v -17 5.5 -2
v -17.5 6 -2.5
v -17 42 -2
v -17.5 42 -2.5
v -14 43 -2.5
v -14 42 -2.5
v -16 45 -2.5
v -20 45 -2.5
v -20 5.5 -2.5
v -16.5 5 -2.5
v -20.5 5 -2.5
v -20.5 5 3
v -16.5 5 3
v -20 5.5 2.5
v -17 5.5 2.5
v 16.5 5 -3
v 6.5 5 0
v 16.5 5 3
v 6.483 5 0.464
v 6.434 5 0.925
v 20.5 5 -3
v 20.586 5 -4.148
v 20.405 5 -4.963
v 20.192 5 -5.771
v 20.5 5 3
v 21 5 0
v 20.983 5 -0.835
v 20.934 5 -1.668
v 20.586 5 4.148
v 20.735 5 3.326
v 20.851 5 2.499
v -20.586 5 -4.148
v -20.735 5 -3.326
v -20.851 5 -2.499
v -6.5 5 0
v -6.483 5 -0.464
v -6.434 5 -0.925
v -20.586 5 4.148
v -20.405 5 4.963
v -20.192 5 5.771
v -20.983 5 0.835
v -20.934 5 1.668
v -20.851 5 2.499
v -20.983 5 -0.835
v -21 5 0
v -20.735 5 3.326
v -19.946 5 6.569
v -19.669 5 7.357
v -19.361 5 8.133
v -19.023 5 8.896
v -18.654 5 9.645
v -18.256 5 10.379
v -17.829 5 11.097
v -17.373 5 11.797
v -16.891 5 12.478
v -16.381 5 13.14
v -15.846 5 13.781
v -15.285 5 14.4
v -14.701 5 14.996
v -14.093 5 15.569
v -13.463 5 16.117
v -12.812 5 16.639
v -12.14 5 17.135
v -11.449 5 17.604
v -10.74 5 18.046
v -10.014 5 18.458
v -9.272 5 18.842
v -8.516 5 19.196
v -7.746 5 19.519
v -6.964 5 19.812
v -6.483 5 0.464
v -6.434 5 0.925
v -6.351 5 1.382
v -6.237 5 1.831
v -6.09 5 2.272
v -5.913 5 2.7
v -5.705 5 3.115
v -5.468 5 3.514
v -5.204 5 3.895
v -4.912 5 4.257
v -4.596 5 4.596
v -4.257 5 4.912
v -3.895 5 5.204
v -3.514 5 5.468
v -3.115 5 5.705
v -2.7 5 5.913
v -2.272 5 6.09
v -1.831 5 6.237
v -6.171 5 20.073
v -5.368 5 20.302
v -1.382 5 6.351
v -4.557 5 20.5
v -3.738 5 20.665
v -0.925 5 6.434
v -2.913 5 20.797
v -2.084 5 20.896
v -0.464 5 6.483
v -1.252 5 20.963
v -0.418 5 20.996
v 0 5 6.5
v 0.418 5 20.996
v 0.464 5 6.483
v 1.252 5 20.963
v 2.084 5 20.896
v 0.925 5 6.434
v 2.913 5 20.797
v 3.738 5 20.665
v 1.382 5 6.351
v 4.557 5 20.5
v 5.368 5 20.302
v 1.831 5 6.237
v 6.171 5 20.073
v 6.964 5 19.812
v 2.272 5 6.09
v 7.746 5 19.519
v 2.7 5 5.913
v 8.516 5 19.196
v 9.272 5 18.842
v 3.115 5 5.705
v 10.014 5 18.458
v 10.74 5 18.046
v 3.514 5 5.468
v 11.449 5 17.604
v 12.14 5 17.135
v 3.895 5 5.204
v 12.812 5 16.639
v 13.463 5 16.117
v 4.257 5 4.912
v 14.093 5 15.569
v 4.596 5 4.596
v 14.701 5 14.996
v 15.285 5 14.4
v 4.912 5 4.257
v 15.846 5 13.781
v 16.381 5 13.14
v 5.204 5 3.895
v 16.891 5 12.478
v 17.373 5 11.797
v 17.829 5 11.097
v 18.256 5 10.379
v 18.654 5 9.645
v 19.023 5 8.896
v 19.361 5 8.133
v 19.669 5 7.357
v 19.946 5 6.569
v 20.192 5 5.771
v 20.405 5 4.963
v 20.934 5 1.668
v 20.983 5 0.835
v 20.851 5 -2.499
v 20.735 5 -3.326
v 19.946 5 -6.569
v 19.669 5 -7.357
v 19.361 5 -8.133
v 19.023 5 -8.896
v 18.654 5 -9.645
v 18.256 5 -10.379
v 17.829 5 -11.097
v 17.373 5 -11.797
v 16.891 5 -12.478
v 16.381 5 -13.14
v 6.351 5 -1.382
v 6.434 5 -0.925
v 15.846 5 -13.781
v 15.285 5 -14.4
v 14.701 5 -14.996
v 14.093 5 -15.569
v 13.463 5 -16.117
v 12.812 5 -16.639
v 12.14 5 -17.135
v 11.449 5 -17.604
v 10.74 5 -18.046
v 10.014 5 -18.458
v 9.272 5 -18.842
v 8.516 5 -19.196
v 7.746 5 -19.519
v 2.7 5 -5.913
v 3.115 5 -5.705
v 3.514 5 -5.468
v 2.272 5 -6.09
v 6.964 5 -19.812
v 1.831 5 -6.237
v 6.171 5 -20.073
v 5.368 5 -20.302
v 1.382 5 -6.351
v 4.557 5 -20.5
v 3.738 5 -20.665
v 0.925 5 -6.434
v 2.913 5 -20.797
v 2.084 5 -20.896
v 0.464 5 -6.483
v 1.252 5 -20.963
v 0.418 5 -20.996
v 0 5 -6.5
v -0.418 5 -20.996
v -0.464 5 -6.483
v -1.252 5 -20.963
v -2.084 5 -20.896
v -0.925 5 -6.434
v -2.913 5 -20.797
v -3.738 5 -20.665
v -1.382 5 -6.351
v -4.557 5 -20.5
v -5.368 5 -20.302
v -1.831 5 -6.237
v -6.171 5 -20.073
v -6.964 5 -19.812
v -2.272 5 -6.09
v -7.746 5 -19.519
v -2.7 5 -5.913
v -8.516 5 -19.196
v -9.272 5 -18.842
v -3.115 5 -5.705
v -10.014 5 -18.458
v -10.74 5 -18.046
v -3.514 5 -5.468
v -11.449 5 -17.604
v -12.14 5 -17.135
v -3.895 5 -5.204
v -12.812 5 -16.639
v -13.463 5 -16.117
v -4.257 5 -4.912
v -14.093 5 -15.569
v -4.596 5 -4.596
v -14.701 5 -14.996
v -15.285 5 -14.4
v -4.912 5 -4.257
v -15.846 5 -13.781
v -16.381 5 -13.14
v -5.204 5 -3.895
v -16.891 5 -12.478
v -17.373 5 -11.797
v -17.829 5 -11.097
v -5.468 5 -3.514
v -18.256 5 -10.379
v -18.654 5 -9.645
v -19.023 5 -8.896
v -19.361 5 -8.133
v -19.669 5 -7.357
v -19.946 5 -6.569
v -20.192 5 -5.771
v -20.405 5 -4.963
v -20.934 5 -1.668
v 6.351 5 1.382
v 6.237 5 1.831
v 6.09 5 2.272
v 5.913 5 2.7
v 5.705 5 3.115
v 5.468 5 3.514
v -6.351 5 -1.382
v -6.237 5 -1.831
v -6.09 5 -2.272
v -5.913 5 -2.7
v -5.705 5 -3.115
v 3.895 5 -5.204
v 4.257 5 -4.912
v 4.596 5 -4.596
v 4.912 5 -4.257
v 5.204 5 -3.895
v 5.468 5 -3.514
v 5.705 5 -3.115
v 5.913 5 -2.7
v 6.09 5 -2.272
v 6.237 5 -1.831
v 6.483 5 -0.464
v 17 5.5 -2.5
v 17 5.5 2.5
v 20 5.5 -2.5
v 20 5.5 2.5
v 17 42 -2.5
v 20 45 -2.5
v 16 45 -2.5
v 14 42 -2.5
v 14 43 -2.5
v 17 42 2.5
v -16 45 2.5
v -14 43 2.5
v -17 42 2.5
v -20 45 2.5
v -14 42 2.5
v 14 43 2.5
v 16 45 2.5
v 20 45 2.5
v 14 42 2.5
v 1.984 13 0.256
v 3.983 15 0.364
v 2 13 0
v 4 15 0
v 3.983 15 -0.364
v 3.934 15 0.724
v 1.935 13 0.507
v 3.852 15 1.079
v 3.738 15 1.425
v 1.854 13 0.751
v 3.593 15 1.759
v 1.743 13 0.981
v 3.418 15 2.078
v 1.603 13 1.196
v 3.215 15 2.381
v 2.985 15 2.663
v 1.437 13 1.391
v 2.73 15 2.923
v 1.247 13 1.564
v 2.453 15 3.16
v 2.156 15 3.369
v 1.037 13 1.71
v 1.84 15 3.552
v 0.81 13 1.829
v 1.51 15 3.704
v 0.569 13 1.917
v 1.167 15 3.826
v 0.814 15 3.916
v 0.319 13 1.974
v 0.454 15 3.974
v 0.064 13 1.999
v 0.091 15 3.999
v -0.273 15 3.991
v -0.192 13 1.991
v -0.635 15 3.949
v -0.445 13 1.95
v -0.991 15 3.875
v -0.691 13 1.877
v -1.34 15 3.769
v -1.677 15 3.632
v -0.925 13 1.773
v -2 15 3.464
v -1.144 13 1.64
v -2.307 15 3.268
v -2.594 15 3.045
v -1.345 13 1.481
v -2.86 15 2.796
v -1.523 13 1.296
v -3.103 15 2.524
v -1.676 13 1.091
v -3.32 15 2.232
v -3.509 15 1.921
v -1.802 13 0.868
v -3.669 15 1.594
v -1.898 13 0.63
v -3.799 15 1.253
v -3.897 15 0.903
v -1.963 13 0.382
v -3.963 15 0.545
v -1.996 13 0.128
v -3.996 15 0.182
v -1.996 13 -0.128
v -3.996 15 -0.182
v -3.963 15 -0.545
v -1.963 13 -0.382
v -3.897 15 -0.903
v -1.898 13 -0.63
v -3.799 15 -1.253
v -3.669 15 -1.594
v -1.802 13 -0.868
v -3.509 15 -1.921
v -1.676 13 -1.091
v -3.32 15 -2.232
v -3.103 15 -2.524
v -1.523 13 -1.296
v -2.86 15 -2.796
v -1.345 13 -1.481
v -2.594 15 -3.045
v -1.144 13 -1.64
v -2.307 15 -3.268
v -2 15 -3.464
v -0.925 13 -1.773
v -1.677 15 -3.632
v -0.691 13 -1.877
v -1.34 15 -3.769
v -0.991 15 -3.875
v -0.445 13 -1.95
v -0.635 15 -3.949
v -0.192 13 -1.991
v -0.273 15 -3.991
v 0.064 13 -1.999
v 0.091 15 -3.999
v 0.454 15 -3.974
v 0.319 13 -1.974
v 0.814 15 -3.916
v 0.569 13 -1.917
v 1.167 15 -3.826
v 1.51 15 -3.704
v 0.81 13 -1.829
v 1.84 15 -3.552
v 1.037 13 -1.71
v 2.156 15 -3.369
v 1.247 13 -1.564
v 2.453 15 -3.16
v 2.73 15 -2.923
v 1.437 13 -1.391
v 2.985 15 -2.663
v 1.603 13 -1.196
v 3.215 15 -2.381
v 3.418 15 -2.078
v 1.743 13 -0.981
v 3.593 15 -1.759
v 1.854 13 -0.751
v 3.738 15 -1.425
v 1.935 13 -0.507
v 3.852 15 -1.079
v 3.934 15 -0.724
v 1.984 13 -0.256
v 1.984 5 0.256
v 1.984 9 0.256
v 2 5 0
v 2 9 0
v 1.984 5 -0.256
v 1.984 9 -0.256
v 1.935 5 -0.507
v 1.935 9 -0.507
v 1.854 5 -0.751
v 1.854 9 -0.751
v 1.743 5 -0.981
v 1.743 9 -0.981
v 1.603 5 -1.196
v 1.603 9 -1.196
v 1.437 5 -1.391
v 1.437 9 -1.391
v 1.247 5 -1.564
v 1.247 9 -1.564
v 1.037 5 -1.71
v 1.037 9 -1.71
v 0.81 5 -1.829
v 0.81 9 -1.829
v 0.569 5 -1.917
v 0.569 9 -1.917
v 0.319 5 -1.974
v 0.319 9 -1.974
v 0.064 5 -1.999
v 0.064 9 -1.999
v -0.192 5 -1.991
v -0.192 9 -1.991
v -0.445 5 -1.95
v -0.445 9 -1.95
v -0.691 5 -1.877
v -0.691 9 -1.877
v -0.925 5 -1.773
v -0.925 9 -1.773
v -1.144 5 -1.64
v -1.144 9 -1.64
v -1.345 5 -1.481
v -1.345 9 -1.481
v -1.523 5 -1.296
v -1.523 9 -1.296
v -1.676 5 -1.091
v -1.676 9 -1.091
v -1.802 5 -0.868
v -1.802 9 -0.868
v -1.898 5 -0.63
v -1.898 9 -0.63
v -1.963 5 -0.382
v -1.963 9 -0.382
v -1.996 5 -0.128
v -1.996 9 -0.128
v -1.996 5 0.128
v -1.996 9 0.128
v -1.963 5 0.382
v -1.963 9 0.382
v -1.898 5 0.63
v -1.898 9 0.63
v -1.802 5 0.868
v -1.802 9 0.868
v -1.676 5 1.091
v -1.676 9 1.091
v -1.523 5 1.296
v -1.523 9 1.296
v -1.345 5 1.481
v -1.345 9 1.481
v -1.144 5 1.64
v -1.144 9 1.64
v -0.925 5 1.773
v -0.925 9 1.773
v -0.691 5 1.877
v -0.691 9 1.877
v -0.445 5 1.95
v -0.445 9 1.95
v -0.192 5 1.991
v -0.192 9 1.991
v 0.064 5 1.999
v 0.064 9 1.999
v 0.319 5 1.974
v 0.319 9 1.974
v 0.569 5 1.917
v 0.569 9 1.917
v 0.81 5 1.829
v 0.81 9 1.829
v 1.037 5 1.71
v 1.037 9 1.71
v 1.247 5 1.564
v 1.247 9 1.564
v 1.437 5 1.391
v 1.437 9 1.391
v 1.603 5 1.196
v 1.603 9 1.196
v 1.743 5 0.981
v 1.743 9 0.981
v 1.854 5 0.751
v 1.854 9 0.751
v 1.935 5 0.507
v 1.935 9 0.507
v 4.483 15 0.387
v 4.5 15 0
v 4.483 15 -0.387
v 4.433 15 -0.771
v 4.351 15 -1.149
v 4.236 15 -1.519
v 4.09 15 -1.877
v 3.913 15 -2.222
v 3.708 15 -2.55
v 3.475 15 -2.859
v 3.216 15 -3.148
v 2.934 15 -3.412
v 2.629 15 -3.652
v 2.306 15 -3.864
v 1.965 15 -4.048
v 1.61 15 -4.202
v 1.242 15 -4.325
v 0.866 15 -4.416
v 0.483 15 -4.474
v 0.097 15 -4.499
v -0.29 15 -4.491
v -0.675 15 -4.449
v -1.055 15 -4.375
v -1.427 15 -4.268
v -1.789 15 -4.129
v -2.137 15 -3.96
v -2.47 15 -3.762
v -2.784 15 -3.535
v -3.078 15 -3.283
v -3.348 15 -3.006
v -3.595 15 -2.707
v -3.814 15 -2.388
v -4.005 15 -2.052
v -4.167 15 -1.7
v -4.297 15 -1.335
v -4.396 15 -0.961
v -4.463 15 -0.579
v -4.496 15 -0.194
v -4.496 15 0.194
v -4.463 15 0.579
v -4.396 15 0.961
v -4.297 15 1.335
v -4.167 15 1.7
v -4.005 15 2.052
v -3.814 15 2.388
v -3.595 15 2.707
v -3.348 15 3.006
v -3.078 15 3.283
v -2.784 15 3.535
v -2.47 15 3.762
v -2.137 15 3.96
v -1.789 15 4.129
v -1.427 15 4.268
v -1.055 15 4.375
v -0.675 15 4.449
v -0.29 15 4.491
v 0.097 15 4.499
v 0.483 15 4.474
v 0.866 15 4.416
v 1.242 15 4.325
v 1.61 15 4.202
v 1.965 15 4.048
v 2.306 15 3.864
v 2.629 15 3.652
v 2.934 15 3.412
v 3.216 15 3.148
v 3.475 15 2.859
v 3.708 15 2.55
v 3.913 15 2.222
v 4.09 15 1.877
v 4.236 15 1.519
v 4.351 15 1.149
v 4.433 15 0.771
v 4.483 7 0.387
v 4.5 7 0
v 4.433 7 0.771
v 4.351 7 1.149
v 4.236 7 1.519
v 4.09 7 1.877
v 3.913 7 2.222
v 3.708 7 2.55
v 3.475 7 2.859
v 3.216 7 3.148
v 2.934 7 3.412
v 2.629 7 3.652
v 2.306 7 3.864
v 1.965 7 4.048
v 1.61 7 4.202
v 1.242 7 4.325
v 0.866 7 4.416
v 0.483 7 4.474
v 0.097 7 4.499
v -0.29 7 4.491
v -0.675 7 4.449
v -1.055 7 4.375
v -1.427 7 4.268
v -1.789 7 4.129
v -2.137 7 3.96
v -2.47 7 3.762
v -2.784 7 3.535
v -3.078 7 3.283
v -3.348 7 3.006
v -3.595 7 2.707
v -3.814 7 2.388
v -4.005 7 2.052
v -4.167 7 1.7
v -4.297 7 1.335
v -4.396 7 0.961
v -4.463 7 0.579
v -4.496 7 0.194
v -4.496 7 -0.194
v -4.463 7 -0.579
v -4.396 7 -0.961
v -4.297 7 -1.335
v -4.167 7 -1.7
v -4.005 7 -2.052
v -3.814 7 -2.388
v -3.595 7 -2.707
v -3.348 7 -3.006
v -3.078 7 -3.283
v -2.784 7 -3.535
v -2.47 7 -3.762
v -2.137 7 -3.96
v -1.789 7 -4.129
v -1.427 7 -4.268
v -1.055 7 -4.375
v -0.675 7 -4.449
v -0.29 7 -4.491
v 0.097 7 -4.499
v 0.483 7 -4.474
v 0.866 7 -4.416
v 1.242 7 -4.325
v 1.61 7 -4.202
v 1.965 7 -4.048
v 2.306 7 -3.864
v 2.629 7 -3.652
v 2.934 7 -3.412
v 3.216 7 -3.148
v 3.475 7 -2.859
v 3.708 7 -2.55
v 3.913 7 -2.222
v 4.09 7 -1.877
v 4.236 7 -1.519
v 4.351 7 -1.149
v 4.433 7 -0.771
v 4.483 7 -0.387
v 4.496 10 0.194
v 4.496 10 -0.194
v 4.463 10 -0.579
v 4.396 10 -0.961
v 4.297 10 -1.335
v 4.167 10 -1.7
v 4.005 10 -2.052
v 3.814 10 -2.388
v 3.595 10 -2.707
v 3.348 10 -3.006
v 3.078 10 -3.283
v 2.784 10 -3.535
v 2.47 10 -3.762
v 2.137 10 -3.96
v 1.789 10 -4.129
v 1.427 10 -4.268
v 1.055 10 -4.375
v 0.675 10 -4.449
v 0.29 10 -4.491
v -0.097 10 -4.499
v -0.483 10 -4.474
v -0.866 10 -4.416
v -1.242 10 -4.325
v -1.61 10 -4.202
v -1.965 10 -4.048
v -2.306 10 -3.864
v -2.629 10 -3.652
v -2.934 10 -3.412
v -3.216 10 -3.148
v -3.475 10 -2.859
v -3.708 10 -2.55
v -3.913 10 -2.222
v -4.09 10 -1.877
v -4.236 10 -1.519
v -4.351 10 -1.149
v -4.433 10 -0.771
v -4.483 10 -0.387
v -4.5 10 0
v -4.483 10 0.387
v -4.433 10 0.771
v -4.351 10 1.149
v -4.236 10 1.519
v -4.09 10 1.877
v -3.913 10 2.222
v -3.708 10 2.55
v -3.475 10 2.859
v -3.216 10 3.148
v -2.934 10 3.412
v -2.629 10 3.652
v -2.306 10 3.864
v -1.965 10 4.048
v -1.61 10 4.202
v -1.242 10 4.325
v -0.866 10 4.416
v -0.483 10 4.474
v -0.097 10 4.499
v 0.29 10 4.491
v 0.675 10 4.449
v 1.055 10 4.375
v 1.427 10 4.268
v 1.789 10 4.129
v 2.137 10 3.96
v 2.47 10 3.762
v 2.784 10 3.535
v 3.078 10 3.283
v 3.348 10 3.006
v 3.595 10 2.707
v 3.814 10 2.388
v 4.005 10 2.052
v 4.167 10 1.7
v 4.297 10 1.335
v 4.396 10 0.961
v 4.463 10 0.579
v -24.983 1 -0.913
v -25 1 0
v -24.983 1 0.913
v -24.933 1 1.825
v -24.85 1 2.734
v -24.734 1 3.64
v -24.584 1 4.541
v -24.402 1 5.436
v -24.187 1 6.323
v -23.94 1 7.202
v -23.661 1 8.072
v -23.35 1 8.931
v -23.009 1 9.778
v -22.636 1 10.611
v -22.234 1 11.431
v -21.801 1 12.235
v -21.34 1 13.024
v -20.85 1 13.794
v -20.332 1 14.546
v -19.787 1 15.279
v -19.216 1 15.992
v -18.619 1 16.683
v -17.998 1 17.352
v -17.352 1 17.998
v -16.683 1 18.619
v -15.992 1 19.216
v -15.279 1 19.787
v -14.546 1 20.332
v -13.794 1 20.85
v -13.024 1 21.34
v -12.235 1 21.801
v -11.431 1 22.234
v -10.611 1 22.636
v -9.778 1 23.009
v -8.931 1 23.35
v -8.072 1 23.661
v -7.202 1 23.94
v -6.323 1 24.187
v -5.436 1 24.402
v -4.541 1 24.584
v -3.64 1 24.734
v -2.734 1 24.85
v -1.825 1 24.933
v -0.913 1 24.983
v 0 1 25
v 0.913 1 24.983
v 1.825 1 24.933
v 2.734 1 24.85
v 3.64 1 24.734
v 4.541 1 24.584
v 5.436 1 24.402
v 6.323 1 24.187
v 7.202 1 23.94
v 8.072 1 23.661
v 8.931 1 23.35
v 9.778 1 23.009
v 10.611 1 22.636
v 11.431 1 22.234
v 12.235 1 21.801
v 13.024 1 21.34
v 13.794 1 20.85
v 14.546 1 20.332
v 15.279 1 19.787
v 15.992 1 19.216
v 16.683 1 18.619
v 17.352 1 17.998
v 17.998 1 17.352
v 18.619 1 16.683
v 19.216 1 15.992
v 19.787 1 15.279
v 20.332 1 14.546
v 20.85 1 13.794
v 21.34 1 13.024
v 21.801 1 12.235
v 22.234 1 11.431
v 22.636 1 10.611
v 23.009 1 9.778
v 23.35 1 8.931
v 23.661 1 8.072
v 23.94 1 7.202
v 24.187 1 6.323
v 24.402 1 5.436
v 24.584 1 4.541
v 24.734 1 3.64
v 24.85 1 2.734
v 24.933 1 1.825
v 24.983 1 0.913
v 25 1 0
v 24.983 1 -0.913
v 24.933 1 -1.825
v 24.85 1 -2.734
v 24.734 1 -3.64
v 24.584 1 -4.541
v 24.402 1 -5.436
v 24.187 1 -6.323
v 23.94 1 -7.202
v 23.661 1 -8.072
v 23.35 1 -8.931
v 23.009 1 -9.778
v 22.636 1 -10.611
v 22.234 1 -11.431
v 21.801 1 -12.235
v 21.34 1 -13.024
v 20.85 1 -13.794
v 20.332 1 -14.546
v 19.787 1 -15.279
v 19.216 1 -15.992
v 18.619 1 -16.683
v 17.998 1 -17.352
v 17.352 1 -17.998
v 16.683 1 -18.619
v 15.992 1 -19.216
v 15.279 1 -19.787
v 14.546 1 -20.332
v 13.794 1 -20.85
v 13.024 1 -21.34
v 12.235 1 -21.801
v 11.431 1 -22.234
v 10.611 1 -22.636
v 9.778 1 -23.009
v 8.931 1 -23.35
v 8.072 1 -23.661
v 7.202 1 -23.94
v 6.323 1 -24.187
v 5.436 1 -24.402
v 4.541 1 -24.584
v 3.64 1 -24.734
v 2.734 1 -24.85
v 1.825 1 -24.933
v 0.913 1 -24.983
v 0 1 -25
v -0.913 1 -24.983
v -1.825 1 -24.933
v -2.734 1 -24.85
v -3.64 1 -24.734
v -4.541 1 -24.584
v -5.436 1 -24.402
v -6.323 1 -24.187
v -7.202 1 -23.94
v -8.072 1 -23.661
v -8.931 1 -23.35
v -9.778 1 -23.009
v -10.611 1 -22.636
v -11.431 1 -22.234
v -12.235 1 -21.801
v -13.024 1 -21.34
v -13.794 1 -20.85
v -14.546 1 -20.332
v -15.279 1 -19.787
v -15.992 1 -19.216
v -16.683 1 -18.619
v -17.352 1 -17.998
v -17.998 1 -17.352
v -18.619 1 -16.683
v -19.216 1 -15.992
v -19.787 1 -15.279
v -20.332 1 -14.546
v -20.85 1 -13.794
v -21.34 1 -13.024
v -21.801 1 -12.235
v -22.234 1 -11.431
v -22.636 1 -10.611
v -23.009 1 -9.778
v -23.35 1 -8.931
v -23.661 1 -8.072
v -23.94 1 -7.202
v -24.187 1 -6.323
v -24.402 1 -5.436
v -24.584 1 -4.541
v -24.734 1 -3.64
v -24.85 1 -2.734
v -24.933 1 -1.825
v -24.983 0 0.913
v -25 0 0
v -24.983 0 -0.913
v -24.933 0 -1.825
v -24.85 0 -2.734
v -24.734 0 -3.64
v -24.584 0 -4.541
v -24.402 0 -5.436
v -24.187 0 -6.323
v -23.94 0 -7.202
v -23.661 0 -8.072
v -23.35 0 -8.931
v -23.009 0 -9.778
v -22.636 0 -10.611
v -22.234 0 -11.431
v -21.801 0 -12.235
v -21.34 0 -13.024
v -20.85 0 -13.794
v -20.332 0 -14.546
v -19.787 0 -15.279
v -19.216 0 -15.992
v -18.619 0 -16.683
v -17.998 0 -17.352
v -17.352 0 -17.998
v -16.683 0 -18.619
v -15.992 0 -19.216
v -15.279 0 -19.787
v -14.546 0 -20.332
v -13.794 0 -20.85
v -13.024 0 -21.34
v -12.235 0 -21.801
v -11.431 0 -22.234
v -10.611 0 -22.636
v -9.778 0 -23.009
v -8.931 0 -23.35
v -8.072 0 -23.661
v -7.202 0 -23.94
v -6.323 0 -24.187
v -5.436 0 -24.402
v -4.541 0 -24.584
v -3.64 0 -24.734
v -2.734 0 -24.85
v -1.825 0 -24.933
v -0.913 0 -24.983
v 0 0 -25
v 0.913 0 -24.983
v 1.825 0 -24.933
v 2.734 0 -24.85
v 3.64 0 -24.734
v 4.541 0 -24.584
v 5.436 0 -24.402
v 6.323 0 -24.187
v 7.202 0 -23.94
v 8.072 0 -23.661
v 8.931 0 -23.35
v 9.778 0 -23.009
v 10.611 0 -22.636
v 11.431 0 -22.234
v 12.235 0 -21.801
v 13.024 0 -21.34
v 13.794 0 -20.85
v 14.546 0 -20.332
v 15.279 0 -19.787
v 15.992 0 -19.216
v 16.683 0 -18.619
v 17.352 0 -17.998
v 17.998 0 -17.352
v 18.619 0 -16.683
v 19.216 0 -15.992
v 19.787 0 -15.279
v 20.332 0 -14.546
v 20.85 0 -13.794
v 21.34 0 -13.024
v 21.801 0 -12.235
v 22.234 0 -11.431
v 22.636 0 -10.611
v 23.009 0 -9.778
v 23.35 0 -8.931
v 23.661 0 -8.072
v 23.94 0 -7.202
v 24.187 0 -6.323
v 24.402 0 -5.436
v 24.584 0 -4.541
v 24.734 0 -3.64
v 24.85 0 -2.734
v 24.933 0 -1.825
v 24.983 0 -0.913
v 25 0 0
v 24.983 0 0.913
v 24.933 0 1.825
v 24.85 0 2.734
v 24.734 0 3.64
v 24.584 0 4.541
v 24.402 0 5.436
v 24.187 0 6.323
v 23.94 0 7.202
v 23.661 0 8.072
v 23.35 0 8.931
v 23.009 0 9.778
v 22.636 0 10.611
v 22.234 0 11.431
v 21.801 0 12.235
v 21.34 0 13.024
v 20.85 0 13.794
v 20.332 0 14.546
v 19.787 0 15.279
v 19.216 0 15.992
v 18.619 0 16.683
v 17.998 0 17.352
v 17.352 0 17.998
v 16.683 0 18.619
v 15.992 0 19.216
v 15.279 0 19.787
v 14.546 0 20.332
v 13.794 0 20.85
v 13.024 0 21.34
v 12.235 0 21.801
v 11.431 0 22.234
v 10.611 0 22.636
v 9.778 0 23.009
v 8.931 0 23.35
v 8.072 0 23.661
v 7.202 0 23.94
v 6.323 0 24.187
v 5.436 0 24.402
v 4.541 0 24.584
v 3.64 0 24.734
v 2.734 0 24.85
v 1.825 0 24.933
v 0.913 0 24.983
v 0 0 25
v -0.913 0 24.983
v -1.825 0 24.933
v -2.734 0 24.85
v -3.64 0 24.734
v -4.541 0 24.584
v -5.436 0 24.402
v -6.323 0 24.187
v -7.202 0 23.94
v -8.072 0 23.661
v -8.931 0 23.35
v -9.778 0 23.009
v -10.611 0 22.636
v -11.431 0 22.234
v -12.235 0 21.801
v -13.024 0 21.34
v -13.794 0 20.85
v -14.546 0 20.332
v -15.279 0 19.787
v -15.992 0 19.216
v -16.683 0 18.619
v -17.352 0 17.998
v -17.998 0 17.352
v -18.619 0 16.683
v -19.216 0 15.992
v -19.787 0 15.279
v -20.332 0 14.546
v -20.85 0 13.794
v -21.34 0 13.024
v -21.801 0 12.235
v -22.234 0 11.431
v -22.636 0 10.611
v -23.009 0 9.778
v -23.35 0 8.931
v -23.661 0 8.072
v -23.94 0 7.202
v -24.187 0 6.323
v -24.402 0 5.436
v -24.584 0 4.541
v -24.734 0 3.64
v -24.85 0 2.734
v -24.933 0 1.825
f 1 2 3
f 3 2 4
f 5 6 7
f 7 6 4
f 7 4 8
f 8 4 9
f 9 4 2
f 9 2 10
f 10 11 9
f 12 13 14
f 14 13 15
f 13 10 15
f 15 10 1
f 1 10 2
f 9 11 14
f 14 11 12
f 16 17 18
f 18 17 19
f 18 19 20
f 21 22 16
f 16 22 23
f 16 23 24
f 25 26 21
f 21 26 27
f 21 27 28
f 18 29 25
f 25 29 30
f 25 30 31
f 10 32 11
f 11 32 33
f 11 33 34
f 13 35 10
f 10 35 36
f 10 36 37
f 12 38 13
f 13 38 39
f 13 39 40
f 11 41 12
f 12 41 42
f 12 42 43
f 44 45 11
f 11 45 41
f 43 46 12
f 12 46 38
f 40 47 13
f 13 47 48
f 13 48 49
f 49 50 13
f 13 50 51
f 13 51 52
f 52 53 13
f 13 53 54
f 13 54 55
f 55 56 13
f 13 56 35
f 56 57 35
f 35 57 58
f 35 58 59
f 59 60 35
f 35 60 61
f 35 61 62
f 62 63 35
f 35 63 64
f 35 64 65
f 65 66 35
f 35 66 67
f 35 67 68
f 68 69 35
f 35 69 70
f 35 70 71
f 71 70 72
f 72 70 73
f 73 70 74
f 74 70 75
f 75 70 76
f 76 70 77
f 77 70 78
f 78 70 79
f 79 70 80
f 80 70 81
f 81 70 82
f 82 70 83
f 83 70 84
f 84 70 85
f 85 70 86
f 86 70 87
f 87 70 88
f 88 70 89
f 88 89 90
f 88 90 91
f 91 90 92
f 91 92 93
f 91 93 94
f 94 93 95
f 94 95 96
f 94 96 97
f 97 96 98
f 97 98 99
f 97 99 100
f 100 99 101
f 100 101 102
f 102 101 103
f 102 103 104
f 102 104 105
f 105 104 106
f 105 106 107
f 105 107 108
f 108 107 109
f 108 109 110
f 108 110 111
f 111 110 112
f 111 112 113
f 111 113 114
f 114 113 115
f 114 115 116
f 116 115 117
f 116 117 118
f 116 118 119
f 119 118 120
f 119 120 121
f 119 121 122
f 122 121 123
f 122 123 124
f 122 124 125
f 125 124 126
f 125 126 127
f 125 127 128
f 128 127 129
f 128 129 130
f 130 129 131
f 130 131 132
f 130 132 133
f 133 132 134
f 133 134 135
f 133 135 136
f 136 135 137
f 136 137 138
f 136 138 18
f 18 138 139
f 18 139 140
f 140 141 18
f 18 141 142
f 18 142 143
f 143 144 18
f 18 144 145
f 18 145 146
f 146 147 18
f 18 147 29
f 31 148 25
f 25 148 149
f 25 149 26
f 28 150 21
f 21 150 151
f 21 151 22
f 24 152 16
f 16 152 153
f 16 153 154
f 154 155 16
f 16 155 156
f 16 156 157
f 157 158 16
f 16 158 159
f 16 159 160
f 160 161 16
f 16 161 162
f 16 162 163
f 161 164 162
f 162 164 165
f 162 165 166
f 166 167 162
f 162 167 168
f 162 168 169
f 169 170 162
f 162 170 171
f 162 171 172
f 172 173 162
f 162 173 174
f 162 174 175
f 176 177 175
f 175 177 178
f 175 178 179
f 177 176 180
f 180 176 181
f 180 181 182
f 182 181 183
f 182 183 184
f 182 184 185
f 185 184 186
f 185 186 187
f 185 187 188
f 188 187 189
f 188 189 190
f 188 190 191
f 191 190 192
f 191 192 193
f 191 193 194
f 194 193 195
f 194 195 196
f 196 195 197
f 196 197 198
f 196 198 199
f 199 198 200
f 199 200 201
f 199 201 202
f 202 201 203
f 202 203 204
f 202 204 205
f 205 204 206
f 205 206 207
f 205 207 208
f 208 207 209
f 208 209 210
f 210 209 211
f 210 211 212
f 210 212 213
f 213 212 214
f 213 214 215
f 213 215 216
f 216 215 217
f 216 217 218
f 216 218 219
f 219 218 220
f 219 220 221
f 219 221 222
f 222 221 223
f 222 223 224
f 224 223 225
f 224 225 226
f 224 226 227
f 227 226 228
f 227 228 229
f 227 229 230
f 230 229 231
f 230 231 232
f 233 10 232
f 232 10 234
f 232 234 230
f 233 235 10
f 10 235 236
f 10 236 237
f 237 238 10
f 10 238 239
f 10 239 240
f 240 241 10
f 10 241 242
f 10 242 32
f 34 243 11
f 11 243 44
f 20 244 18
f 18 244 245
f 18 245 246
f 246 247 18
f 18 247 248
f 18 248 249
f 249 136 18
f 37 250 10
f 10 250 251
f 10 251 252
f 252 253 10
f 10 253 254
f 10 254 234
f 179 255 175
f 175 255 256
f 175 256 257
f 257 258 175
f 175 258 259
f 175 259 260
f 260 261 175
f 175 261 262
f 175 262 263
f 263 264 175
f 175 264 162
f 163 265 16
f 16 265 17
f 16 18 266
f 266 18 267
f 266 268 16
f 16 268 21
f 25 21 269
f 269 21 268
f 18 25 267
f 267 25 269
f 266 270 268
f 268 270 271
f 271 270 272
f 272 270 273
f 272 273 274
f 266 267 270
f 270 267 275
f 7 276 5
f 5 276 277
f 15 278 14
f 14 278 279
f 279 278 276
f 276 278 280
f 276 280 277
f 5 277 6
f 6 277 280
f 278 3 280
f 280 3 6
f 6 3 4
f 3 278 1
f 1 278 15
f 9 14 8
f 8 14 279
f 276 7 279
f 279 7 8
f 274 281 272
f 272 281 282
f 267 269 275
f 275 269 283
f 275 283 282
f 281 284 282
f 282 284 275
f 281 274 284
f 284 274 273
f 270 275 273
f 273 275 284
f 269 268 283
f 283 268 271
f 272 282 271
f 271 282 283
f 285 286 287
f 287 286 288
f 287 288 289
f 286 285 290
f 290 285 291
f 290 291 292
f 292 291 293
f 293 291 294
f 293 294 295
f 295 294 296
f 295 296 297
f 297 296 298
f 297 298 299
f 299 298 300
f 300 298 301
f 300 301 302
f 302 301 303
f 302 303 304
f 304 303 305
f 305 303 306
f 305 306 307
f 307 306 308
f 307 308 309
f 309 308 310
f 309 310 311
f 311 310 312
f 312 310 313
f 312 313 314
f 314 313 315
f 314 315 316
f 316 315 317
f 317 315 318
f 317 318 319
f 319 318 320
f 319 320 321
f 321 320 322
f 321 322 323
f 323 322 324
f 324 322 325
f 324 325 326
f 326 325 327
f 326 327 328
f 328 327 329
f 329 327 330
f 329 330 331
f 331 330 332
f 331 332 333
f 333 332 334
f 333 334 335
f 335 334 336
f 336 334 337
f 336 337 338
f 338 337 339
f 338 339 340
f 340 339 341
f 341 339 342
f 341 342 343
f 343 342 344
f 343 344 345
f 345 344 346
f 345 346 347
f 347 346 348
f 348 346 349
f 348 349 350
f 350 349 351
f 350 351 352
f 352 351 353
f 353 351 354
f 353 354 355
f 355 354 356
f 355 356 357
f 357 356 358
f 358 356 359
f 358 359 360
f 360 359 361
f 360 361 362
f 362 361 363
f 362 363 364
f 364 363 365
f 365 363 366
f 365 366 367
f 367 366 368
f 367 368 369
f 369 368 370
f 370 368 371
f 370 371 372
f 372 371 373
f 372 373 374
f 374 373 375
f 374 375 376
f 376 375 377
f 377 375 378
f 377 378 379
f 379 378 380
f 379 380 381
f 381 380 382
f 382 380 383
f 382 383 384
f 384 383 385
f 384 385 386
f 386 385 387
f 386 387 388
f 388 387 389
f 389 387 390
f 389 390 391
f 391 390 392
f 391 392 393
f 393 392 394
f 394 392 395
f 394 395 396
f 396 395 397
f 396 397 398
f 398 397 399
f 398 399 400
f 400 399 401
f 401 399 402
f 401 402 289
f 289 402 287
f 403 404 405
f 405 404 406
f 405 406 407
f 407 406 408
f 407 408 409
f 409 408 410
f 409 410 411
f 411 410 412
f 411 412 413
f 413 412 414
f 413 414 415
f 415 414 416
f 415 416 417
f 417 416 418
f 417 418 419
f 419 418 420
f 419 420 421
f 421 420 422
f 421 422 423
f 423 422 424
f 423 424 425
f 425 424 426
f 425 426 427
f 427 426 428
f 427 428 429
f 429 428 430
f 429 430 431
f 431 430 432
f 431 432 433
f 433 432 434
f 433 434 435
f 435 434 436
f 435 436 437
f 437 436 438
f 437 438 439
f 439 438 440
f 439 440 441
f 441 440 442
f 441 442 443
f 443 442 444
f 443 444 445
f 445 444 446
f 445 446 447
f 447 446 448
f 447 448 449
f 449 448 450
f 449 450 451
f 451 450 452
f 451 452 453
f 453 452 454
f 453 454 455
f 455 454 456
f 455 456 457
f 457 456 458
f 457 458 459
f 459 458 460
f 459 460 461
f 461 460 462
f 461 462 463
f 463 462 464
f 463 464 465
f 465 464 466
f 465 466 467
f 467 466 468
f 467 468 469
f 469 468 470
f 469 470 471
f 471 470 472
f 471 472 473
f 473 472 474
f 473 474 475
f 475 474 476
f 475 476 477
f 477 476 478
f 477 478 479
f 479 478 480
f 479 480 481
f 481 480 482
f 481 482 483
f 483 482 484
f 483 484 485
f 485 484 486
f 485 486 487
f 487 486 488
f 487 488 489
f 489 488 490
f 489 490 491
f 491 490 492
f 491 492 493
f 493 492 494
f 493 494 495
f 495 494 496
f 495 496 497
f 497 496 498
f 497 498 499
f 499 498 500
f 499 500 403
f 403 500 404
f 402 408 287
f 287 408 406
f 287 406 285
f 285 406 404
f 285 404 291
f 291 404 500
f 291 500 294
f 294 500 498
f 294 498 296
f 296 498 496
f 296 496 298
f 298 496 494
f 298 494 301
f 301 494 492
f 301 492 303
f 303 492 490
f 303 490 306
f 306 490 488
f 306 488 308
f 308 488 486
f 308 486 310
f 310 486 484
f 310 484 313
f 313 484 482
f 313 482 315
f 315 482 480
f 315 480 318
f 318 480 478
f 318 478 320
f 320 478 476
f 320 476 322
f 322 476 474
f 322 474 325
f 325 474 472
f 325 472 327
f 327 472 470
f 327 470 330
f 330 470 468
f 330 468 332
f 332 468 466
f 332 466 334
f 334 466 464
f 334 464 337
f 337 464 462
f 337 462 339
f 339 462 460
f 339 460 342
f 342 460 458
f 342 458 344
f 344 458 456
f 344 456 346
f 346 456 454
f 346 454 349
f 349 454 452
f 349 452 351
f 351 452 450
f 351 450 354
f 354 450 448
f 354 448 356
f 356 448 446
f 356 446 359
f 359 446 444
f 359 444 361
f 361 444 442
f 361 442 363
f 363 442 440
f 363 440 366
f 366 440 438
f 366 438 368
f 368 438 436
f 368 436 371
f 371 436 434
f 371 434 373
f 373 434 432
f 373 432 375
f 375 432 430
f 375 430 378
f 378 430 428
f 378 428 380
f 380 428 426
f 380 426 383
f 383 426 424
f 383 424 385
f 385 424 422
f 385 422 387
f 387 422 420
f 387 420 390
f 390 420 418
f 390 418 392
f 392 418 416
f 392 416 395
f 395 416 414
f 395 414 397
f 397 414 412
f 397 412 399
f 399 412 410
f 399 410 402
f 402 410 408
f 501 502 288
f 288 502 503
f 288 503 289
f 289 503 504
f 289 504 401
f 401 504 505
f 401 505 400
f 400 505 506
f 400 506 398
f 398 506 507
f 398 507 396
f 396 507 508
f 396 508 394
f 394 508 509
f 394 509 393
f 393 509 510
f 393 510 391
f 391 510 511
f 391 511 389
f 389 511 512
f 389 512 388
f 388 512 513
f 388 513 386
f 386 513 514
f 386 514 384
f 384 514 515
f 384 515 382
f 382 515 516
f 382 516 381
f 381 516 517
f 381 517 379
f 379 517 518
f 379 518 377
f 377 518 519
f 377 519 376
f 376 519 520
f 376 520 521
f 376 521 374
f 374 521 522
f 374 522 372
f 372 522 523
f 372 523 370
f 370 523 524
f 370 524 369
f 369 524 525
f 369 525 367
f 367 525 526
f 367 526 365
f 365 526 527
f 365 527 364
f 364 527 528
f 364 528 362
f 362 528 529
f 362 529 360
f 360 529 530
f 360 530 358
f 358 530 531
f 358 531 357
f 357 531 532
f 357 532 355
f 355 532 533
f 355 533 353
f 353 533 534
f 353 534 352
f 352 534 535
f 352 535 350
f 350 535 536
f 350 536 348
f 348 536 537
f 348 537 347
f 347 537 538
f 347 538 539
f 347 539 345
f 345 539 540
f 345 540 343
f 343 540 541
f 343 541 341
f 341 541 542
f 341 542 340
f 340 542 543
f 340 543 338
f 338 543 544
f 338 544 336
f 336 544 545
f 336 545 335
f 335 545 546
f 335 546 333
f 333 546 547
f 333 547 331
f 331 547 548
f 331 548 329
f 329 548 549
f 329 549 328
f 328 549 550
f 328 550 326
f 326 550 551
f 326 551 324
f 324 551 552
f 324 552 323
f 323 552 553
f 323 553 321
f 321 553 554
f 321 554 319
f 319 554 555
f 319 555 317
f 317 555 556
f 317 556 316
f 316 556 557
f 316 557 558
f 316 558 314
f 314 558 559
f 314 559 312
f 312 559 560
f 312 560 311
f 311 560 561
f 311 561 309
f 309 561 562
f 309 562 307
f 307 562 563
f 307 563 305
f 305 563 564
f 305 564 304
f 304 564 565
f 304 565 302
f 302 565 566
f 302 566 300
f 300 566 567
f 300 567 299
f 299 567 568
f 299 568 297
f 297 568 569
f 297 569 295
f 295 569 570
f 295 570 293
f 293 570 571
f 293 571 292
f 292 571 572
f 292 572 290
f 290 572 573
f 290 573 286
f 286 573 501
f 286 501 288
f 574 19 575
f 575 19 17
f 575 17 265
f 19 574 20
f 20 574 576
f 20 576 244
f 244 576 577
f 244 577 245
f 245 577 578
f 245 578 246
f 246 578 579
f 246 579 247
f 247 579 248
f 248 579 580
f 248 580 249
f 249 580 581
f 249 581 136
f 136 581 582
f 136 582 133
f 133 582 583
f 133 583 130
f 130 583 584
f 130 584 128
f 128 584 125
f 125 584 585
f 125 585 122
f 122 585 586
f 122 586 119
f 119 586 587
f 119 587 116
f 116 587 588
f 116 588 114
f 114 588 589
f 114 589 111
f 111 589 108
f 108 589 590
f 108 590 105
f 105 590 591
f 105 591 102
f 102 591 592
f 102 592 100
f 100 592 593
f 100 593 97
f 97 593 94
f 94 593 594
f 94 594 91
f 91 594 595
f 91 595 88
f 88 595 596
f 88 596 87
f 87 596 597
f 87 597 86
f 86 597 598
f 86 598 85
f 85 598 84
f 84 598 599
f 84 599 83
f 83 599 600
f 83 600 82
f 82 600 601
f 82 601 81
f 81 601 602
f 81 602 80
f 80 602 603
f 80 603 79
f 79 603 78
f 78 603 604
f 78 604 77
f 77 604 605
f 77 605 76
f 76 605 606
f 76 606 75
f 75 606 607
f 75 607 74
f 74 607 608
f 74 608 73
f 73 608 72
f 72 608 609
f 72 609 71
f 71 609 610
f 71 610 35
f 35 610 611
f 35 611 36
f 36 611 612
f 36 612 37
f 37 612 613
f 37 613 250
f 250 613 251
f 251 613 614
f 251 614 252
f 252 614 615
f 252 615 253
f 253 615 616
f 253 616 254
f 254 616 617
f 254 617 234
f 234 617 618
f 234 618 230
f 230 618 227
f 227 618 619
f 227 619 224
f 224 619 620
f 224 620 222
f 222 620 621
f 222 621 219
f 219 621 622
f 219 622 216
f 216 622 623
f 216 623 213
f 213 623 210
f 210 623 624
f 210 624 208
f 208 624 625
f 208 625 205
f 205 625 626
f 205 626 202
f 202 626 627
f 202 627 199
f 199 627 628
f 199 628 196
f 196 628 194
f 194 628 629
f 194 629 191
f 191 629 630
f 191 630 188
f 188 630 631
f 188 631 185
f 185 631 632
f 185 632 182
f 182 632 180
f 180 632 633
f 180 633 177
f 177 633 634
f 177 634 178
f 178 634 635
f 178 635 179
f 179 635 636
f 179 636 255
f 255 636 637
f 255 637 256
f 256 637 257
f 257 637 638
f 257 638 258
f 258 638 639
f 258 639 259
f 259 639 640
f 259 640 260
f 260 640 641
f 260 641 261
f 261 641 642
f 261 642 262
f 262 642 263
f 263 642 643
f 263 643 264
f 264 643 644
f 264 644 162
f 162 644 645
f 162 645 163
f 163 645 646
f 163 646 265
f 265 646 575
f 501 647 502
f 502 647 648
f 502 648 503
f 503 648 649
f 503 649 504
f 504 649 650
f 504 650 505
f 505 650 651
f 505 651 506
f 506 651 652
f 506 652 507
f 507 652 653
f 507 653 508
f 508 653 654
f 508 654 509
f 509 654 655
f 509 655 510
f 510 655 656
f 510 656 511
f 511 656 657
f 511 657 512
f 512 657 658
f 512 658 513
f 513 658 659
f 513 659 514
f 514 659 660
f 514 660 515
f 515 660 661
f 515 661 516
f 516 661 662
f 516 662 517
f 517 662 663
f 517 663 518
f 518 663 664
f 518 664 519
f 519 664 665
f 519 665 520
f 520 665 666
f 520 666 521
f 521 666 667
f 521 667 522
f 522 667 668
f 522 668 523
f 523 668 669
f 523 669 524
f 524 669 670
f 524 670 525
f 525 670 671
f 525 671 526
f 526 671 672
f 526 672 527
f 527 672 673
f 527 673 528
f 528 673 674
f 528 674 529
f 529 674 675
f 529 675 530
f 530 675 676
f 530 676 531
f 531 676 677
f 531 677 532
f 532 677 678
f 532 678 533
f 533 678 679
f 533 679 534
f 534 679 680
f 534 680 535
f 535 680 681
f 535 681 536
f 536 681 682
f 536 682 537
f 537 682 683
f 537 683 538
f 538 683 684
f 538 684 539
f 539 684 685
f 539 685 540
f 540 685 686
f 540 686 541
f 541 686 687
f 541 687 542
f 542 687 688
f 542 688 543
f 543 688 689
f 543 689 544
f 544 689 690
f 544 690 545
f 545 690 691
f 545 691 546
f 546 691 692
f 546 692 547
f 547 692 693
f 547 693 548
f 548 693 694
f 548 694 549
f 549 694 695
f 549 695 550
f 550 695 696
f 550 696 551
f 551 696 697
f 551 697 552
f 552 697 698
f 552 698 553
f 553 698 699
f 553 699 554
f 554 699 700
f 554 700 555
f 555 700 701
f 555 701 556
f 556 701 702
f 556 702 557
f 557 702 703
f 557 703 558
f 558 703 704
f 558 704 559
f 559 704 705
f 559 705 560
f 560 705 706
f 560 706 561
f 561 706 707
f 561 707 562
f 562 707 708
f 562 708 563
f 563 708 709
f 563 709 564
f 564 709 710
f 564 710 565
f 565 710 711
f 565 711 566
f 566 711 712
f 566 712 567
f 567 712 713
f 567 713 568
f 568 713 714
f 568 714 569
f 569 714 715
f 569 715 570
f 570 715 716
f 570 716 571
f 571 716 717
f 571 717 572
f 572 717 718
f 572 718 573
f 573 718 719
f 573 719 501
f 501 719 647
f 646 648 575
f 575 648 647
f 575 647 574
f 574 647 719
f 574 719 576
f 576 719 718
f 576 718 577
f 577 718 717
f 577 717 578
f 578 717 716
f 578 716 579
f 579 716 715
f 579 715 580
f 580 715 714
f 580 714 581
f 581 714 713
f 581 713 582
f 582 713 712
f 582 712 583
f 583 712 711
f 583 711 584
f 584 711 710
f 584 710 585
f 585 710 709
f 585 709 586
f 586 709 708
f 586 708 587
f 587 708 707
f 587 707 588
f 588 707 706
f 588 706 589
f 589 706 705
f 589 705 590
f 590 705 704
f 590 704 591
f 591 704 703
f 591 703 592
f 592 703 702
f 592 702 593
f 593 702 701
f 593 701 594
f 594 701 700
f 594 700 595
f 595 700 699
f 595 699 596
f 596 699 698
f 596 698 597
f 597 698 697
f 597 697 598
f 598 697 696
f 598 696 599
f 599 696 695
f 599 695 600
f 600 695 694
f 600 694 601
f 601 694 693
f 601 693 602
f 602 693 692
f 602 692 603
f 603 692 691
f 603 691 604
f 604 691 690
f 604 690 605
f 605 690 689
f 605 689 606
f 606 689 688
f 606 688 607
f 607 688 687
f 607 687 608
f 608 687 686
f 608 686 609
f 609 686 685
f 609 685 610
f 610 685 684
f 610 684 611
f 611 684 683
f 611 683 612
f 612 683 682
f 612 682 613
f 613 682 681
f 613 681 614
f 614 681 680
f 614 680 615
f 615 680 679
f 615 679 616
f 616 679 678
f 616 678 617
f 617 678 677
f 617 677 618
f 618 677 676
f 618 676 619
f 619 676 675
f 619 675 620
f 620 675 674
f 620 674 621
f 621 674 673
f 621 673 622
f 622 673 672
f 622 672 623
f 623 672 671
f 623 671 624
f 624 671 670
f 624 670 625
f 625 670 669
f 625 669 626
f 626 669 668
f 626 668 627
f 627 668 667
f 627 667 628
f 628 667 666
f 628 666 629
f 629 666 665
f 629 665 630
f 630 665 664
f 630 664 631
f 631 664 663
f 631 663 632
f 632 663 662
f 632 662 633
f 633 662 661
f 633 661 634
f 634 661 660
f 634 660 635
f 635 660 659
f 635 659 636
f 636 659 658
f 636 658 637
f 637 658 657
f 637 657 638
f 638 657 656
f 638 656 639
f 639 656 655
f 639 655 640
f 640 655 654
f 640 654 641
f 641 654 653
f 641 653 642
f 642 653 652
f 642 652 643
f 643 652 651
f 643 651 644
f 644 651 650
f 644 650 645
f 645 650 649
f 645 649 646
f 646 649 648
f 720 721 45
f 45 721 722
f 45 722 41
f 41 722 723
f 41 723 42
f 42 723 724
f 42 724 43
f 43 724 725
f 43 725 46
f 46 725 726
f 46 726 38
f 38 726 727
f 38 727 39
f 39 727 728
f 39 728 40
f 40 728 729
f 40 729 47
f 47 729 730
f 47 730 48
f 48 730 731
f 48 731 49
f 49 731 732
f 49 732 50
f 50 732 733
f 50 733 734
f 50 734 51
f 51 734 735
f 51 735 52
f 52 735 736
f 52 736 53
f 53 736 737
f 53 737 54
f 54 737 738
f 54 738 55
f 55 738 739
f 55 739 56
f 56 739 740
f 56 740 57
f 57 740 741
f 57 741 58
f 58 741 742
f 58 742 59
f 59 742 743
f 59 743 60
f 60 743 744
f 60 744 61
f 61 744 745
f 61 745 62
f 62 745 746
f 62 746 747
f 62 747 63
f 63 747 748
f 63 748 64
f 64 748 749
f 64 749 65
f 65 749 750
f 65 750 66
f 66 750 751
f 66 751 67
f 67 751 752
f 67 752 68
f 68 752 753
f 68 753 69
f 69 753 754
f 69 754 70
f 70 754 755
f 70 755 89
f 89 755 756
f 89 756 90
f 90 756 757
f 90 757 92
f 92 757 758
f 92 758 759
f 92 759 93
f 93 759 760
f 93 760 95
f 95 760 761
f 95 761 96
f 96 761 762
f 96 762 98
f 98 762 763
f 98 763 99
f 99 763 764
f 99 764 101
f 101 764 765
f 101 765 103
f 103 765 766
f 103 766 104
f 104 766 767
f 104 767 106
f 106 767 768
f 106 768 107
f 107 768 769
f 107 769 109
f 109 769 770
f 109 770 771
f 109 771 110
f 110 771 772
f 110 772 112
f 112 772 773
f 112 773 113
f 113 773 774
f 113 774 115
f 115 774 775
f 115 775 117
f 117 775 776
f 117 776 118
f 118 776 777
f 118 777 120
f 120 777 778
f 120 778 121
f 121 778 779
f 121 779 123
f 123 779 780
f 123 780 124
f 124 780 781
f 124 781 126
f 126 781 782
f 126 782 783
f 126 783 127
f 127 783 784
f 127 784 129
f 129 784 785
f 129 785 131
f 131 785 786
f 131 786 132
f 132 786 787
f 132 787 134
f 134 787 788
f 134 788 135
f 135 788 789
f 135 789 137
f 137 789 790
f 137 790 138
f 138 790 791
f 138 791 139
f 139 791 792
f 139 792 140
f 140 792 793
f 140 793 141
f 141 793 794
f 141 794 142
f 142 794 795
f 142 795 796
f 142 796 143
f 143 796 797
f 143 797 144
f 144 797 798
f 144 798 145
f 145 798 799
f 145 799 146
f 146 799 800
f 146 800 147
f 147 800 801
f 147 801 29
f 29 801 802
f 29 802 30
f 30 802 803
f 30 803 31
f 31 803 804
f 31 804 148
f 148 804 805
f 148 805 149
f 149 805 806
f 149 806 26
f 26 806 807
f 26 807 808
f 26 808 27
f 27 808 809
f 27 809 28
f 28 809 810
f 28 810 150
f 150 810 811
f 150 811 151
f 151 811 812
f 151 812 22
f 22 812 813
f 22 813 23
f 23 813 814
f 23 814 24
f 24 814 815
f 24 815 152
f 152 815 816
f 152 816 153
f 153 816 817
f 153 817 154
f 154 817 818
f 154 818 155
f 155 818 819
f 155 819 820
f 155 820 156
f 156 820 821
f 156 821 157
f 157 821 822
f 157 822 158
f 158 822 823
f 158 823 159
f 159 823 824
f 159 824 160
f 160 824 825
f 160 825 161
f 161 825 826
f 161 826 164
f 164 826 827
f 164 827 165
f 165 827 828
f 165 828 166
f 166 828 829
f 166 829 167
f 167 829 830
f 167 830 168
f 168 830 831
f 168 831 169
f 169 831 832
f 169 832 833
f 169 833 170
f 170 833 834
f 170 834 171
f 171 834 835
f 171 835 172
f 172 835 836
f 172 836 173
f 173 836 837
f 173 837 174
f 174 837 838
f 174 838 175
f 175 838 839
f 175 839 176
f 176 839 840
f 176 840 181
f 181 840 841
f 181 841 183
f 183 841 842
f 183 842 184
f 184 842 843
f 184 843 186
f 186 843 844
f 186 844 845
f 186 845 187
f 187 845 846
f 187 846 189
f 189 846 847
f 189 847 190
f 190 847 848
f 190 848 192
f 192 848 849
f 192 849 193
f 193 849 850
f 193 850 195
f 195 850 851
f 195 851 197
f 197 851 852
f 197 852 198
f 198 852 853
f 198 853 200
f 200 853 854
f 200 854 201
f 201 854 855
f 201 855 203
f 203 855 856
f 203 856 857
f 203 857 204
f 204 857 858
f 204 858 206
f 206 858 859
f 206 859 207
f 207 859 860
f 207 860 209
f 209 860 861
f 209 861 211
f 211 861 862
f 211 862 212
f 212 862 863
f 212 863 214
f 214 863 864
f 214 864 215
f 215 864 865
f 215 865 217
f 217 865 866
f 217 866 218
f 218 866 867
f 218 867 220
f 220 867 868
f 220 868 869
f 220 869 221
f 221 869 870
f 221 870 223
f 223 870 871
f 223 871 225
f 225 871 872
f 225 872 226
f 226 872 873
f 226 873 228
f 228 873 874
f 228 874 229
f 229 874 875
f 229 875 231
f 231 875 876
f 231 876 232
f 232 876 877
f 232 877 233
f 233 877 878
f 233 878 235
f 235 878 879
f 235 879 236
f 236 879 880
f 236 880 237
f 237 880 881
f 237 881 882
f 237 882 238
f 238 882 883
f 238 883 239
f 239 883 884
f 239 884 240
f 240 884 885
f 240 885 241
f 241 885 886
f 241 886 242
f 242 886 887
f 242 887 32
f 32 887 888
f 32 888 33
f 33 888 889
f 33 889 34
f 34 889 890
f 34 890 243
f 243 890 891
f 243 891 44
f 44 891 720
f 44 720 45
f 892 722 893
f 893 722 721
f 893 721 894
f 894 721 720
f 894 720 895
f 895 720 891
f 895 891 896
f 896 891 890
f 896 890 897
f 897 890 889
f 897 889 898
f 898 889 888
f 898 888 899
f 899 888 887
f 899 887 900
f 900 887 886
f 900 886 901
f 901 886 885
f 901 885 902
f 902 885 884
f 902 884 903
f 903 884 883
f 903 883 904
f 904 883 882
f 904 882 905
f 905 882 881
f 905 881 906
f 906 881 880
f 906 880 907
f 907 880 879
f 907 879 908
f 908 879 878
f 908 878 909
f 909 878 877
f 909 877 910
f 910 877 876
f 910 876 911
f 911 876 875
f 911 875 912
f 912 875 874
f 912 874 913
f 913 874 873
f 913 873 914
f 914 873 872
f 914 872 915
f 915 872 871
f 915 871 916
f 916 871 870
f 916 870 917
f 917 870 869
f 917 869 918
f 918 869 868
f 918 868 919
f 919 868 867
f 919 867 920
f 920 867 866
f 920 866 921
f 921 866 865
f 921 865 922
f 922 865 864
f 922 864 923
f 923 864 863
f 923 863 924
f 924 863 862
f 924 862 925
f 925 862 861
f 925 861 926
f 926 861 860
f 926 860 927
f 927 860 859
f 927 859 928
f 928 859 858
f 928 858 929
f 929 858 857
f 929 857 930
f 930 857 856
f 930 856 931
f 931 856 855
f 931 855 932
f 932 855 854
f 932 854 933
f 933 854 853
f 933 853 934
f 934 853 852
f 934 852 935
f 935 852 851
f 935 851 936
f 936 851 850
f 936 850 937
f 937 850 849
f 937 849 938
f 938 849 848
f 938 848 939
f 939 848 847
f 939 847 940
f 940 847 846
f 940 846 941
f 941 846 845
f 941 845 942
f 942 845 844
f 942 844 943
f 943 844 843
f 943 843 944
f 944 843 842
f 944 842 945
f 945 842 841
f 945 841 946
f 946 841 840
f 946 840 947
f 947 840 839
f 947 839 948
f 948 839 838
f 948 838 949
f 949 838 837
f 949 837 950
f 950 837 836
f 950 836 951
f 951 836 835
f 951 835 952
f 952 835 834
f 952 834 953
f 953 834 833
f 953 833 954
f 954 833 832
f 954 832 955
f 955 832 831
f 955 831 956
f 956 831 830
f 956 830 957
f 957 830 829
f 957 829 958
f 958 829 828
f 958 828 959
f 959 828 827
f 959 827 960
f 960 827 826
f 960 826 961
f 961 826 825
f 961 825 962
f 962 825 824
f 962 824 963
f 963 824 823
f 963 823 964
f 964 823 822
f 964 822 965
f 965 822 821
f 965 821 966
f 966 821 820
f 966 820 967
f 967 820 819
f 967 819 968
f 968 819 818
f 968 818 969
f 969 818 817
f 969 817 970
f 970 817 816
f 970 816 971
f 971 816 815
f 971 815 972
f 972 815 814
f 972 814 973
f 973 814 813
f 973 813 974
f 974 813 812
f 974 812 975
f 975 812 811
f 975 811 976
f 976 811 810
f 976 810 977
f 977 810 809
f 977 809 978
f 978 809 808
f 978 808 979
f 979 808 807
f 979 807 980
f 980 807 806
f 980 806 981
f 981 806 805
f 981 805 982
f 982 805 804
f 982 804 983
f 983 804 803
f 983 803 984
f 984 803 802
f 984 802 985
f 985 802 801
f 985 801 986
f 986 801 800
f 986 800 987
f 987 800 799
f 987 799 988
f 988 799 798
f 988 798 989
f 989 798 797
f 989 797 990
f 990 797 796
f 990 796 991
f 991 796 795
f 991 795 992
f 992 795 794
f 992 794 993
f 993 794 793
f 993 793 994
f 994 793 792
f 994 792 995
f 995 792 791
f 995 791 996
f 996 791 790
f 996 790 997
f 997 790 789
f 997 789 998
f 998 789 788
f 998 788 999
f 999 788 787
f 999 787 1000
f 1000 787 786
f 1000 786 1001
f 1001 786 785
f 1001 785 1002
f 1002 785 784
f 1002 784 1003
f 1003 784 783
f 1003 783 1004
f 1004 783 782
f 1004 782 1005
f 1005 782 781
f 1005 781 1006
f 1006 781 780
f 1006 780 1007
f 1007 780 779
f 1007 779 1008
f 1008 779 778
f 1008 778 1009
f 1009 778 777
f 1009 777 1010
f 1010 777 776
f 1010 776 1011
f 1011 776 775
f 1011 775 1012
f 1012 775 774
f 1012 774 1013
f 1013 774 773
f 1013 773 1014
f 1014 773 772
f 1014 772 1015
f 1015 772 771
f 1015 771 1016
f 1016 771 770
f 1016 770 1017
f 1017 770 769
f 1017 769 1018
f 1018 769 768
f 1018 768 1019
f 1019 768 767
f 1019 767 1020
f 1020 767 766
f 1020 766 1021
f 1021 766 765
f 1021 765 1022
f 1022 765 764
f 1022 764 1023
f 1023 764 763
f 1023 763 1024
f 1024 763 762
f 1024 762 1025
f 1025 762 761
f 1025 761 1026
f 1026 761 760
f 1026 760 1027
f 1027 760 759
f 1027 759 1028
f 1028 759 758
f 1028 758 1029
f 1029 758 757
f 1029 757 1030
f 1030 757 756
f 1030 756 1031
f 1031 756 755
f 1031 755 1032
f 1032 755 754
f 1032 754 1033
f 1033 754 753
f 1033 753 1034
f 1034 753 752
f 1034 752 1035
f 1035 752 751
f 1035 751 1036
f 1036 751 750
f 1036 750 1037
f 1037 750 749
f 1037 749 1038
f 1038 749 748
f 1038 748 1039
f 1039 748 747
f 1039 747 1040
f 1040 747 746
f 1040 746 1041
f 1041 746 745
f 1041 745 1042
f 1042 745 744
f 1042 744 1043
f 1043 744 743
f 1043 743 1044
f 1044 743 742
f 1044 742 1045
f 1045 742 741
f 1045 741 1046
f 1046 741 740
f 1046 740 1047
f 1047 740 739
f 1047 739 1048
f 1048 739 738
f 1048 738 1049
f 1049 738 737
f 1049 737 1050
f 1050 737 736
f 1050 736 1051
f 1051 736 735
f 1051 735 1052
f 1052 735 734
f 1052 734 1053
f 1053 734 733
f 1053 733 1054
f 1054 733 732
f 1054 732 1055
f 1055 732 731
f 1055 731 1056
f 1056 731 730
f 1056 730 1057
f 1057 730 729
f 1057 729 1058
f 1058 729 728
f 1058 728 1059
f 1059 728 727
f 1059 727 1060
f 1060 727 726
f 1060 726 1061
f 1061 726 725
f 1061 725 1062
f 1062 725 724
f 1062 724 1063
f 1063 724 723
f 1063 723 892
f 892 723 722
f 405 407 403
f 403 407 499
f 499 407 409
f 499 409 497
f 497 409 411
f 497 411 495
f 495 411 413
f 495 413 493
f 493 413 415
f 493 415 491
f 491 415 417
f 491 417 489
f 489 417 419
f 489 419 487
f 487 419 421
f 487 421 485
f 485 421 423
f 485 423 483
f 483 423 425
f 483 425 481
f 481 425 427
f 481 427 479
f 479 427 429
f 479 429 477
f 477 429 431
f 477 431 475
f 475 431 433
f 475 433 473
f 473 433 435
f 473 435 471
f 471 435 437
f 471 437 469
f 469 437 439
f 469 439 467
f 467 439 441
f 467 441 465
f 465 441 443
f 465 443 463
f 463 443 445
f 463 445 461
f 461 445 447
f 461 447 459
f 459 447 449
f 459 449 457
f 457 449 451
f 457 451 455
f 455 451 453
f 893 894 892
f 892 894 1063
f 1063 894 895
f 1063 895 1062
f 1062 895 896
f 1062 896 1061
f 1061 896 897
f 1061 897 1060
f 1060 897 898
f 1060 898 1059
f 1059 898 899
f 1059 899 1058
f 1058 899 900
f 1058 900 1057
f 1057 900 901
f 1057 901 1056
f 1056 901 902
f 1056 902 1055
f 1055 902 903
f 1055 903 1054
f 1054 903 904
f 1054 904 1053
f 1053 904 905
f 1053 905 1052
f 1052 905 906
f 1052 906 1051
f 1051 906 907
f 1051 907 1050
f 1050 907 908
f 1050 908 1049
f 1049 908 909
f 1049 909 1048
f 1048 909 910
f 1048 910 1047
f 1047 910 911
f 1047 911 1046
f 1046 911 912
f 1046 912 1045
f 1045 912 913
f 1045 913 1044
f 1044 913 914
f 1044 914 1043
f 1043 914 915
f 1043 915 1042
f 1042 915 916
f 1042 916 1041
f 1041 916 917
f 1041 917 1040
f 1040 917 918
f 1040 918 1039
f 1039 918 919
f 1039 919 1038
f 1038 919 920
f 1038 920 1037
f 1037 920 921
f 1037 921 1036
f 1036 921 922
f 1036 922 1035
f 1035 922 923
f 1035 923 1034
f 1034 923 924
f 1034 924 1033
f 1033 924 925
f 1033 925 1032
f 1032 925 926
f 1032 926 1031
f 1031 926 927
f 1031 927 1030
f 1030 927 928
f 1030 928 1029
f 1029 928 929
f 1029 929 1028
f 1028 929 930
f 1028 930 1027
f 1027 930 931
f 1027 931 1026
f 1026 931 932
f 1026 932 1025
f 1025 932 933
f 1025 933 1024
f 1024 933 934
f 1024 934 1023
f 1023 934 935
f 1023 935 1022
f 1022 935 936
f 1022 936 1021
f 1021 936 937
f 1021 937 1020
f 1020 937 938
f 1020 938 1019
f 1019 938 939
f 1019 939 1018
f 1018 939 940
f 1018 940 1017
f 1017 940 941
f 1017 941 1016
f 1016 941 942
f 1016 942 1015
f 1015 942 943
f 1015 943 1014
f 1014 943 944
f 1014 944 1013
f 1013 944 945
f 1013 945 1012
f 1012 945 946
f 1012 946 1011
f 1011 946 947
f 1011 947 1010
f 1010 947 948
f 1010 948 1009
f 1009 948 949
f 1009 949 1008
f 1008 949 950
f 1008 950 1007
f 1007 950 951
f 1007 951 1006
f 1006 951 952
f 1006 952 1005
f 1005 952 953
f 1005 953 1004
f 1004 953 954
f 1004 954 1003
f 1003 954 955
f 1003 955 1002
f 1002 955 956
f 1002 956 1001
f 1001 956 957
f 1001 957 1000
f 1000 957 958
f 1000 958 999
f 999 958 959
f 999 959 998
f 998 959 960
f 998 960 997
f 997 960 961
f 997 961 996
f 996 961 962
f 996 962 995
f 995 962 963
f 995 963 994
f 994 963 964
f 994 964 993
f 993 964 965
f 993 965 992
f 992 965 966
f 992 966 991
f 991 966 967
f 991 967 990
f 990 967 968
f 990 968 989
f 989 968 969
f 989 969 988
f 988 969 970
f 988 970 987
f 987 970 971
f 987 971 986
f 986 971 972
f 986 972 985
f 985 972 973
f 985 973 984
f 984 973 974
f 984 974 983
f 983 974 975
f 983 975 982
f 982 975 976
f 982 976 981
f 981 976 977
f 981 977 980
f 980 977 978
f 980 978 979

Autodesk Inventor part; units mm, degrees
ref_plane "YZ Plane" through (0, 0, 0) normal (1, 0, 0) x (0, 1, 0)
ref_plane "XZ Plane" through (0, 0, 0) normal (0, 1, 0) x (-1, 0, 0)
ref_plane "XY Plane" through (0, 0, 0) normal (0, 0, 1) x (1, 0, 0)
sketch "Sketch1" plane through (0, 0, 0) normal (0, 1, 0) x (-1, 0, 0)
  circle A0 centre (0, 0) radius 25
  dimension "d0" = 50
extrude "Extrusion1" add sketch "Sketch1" along normal blind 5
chamfer "Chamfer1" distance 4 angle 45 1 edges at (25, 5, 0)
sketch "Sketch2" plane through (0, 5, 0) normal (0, 1, 0) x (1, 0, 0)
  circle A0 centre (0, 0) radius 2
  circle A1 centre (0, 0) radius 4.5
  dimension "d6" = 4
  dimension "d7" = 9
extrude "Extrusion2" add sketch "Sketch2" along normal blind 10
chamfer "Chamfer2" distance 2 angle 45 1 edges at (-4.5, 5, 0)
chamfer "Chamfer3" distance 2 angle 45 1 edges at (-2, 15, 0)
sketch "Sketch3" plane through (0, 5, 0) normal (0, 1, 0) x (1, 0, 0)
  line L0 (17, 2.5) -> (20, 2.5)
  line L1 (20, 2.5) -> (20, -2.5)
  line L2 (20, -2.5) -> (17, -2.5)
  line L3 (17, -2.5) -> (17, 2.5)
  point P0 (0, 0)
  dimension "d16" = 3
  dimension "d17" = 5
  dimension "d29" = 17
extrude "Extrusion3" add sketch "Sketch3" along normal blind 40
sketch "Sketch4" plane through (17, 5, -2.5) normal (-1, 0, 0) x (0, 0, 1)
  line L0 (5, 40) -> (0, 40) projected
  line L1 (5, 0) -> (5, 40) projected
  line L2 (0, 40) -> (5, 40)
  line L3 (5, 40) -> (5, 37)
  line L4 (5, 37) -> (0, 37)
  line L5 (0, 37) -> (0, 40)
  point P0 (2.5, -5)
  dimension "d20" = 3
extrude "Extrusion4" add sketch "Sketch4" along normal blind 3
chamfer "Chamfer4" distance 2 angle 45 1 edges at (14, 45, 0)
mirror "Mirror1" about plane through (0, 0, 0) normal (1, 0, 0) of "Extrusion3", "Chamfer4", "Extrusion4"
chamfer "Chamfer6" distance 0.5 angle 45 8 edges at (20, 5, 0) (18.5, 5, 2.5) (18.5, 5, -2.5) (17, 5, 0) (-17, 5, 0) (-18.5, 5, 2.5) (-20, 5, 0) (-17, 23.5, -2.5)
properties part number "supportPoint2"
